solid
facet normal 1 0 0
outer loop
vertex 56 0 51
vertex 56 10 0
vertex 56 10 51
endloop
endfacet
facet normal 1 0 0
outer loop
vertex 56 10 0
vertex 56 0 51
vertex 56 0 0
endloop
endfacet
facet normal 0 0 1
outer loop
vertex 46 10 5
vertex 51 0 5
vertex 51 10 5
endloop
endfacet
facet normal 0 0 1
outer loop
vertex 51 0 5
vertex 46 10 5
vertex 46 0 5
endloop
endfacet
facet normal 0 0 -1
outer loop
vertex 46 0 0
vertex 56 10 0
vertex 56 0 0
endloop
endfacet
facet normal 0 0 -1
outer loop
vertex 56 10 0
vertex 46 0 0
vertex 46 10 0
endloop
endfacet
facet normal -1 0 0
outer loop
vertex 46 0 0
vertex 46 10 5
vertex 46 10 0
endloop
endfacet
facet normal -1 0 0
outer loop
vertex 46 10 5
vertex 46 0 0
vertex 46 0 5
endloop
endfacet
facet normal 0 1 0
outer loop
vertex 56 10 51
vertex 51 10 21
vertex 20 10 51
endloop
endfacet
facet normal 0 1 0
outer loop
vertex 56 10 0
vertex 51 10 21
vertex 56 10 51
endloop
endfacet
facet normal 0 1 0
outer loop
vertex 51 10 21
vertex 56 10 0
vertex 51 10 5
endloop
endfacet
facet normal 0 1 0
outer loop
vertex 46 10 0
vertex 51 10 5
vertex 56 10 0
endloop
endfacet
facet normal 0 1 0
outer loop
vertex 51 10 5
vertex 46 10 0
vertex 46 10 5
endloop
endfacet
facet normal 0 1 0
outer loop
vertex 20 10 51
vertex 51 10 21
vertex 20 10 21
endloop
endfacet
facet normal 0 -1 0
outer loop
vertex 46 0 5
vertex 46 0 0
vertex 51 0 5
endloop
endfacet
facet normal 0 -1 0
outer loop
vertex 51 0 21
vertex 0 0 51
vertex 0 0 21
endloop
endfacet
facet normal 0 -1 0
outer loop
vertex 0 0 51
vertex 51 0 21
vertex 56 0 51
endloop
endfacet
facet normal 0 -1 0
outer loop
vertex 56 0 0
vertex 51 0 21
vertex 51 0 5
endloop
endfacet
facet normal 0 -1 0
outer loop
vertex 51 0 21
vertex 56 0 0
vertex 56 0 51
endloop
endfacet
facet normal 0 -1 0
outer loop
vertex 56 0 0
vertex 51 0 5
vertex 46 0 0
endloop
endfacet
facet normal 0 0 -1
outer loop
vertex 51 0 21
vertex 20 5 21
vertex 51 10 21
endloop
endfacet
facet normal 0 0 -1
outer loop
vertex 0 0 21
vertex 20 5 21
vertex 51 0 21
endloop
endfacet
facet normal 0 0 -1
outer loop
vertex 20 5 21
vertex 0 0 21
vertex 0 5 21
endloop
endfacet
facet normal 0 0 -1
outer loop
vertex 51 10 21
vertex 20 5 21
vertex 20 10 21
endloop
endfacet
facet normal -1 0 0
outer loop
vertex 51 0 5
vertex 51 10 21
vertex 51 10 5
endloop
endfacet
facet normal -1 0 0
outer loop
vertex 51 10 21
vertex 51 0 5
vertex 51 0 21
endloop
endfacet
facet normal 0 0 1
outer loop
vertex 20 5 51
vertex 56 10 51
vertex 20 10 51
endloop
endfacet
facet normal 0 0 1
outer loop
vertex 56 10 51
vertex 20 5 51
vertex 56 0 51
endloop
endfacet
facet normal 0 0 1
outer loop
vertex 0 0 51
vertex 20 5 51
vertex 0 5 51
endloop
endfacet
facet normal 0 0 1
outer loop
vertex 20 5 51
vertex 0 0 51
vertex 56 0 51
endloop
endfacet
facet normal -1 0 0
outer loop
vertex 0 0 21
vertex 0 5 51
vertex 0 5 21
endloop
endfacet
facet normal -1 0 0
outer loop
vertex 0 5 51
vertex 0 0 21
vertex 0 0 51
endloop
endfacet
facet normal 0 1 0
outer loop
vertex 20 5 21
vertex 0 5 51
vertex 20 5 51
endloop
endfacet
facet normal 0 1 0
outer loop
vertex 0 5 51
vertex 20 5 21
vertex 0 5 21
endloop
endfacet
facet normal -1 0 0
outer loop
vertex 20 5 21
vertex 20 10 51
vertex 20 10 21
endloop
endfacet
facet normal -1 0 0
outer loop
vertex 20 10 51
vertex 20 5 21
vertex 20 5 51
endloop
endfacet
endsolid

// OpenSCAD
union() {
    translate([46, 0, 0])
        cube([10, 10, 5]);
    translate([51, 0, 5])
        cube([5, 10, 16]);
    translate([0, 0, 21])
        cube([56, 5, 30]);
    translate([20, 5, 21])
        cube([36, 5, 30]);
}
